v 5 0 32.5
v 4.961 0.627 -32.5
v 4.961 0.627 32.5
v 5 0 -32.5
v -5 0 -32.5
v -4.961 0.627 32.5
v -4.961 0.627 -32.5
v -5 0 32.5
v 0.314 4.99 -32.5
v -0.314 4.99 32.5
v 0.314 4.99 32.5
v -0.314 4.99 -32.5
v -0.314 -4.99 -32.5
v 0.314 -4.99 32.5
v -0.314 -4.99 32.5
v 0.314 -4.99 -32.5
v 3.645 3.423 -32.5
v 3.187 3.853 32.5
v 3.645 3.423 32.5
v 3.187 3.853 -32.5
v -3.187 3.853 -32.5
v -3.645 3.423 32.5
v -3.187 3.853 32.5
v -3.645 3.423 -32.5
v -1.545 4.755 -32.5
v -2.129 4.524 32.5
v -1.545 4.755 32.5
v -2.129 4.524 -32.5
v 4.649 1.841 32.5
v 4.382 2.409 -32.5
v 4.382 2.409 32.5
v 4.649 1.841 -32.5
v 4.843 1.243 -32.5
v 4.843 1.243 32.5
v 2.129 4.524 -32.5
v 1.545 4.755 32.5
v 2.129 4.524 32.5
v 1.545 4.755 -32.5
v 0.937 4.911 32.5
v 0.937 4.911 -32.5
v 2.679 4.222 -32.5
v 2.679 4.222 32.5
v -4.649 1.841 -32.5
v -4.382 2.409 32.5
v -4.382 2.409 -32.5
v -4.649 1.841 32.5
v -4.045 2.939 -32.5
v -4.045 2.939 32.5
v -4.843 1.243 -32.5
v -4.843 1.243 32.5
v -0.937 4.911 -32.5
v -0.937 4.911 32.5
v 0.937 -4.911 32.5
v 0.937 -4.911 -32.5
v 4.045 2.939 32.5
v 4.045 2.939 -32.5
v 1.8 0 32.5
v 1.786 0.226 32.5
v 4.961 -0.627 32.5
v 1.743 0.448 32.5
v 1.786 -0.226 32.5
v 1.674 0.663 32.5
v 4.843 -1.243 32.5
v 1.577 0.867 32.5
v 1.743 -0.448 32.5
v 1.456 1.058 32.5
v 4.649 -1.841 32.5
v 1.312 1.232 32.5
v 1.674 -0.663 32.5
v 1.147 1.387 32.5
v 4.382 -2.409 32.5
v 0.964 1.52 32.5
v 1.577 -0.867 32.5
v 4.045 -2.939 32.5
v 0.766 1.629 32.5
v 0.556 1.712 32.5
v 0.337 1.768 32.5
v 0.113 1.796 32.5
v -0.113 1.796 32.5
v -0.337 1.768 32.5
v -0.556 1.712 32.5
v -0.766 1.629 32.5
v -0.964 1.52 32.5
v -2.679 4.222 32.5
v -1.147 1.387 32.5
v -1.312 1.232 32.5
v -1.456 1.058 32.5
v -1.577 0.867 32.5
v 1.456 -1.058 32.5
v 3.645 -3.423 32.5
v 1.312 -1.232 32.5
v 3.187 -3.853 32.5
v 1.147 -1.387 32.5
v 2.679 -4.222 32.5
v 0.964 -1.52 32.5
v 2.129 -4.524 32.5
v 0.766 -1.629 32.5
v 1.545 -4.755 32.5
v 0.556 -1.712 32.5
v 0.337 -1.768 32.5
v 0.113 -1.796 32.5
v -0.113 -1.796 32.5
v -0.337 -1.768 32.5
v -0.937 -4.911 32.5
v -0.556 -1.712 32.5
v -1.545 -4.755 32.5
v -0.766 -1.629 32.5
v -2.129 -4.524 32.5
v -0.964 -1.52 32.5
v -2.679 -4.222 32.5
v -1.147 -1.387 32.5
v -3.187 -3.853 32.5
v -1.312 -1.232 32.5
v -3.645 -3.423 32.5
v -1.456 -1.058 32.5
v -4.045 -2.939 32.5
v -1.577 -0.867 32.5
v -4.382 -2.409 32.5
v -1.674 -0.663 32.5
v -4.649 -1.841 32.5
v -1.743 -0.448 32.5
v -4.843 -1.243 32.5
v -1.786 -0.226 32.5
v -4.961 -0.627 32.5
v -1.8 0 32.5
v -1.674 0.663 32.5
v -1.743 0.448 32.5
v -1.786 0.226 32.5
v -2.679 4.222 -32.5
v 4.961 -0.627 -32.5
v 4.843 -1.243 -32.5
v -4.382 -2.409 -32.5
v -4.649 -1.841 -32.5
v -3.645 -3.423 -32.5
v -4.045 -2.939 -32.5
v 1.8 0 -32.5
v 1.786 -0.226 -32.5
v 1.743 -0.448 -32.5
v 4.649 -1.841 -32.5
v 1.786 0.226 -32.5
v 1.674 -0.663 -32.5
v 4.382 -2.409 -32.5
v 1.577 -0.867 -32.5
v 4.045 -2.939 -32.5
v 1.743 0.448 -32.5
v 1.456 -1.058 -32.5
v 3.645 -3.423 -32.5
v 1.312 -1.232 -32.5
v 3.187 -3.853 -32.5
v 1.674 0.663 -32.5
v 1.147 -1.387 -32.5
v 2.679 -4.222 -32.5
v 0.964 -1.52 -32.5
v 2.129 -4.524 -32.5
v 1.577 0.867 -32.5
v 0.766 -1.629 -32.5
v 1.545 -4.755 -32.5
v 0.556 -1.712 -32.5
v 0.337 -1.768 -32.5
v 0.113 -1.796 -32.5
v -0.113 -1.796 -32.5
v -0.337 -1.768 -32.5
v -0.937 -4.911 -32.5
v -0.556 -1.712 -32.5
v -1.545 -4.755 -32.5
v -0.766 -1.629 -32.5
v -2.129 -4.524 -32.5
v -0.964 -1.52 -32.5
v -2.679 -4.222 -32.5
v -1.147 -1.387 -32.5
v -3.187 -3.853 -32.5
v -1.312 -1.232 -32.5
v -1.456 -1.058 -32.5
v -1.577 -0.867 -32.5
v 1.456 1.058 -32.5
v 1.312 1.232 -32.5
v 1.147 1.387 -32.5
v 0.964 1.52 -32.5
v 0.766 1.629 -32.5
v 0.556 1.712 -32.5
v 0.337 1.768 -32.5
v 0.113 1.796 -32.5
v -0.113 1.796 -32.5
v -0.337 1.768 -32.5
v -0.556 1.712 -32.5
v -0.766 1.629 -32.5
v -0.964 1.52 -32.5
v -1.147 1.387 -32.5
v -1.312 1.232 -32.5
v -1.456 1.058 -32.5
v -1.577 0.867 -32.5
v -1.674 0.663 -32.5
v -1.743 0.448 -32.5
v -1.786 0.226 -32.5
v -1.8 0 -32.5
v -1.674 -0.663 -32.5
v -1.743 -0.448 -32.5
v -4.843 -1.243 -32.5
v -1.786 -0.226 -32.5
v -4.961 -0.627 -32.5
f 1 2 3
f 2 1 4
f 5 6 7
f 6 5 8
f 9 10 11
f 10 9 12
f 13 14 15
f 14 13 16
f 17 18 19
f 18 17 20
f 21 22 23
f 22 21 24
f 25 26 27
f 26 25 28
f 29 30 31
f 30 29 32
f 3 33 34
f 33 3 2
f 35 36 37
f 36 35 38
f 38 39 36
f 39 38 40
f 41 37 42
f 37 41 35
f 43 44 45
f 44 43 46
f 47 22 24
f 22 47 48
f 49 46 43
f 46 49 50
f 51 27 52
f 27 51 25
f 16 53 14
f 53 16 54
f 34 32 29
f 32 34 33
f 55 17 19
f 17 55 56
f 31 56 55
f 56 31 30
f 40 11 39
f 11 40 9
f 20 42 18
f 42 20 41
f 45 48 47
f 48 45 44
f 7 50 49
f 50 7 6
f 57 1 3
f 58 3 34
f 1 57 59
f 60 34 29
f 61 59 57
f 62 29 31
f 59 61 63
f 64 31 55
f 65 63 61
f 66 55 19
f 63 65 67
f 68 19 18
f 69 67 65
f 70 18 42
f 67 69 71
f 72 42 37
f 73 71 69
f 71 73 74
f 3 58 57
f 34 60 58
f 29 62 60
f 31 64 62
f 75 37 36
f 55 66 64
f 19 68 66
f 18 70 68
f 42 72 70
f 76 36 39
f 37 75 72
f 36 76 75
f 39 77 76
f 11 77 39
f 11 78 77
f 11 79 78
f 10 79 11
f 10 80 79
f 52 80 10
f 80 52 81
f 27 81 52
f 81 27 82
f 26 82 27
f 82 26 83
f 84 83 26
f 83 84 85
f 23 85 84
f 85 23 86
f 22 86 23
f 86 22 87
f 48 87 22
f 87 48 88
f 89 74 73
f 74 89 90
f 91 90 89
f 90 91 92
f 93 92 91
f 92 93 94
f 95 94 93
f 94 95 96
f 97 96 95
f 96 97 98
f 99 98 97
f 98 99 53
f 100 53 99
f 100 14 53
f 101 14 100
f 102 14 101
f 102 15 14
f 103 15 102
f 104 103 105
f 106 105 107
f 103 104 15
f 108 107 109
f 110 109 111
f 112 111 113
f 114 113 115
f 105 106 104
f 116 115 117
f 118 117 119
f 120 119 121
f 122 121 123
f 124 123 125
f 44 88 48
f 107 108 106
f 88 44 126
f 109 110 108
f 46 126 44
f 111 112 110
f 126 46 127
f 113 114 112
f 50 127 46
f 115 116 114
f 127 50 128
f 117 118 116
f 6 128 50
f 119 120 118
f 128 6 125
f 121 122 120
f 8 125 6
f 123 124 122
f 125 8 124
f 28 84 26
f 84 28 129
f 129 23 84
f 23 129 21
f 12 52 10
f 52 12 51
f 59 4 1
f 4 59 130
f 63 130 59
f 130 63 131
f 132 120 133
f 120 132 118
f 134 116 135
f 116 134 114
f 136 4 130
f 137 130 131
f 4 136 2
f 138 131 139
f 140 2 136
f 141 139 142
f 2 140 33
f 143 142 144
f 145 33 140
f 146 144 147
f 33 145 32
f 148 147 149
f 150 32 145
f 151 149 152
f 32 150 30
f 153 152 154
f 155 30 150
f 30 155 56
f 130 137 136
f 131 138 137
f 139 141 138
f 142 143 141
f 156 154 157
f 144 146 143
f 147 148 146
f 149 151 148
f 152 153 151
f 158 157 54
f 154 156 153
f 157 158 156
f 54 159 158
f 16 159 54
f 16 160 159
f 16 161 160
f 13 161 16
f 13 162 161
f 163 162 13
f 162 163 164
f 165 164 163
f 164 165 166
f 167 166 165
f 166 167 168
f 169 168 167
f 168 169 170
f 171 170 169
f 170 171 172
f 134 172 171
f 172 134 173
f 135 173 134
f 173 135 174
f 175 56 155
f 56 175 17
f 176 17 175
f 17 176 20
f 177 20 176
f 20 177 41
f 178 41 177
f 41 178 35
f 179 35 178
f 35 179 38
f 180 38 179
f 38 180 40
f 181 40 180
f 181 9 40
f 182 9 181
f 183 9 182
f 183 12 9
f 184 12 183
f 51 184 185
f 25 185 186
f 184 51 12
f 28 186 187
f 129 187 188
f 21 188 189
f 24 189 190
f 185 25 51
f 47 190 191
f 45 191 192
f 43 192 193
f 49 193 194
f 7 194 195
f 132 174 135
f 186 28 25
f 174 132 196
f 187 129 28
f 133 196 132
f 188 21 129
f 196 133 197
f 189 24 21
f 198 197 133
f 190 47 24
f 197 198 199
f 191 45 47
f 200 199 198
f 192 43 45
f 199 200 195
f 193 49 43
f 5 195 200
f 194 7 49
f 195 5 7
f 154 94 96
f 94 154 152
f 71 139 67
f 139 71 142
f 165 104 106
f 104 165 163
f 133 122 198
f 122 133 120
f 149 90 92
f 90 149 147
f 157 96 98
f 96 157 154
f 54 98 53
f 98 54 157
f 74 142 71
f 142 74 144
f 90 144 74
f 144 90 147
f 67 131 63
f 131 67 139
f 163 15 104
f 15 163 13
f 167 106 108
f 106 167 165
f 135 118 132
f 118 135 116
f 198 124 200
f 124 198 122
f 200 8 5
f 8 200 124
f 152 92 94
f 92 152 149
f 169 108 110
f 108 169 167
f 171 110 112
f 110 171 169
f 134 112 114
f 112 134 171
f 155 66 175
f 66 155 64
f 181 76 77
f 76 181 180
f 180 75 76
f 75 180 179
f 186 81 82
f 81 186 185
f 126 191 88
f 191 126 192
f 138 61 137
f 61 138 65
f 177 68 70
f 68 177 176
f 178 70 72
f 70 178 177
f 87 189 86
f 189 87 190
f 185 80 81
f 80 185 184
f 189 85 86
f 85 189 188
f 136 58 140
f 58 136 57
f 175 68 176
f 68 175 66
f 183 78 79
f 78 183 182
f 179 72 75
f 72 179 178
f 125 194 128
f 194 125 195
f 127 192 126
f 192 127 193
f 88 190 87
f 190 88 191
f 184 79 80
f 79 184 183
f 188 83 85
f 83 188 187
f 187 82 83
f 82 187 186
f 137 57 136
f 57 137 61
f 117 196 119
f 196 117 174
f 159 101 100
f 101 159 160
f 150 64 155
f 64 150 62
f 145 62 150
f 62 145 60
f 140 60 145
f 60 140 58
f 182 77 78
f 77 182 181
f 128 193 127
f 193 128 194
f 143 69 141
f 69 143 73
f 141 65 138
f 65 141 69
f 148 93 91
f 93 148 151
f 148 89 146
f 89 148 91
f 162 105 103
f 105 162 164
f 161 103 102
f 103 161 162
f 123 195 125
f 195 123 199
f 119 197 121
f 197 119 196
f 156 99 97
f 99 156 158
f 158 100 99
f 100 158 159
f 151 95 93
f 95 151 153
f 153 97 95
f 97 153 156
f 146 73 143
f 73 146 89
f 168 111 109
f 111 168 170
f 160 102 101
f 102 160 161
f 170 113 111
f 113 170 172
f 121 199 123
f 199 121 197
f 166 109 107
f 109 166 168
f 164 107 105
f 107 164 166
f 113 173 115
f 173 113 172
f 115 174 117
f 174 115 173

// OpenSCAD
$fn = 50;


difference() {
	union() {
		translate(v = [0, 0, -32.5000000000]) {
			cylinder(h = 65, r = 5.0000000000);
		}
	}
	union() {
		translate(v = [0, 0, -100.0000000000]) {
			cylinder(h = 200, r = 1.8000000000);
		}
	}
}
